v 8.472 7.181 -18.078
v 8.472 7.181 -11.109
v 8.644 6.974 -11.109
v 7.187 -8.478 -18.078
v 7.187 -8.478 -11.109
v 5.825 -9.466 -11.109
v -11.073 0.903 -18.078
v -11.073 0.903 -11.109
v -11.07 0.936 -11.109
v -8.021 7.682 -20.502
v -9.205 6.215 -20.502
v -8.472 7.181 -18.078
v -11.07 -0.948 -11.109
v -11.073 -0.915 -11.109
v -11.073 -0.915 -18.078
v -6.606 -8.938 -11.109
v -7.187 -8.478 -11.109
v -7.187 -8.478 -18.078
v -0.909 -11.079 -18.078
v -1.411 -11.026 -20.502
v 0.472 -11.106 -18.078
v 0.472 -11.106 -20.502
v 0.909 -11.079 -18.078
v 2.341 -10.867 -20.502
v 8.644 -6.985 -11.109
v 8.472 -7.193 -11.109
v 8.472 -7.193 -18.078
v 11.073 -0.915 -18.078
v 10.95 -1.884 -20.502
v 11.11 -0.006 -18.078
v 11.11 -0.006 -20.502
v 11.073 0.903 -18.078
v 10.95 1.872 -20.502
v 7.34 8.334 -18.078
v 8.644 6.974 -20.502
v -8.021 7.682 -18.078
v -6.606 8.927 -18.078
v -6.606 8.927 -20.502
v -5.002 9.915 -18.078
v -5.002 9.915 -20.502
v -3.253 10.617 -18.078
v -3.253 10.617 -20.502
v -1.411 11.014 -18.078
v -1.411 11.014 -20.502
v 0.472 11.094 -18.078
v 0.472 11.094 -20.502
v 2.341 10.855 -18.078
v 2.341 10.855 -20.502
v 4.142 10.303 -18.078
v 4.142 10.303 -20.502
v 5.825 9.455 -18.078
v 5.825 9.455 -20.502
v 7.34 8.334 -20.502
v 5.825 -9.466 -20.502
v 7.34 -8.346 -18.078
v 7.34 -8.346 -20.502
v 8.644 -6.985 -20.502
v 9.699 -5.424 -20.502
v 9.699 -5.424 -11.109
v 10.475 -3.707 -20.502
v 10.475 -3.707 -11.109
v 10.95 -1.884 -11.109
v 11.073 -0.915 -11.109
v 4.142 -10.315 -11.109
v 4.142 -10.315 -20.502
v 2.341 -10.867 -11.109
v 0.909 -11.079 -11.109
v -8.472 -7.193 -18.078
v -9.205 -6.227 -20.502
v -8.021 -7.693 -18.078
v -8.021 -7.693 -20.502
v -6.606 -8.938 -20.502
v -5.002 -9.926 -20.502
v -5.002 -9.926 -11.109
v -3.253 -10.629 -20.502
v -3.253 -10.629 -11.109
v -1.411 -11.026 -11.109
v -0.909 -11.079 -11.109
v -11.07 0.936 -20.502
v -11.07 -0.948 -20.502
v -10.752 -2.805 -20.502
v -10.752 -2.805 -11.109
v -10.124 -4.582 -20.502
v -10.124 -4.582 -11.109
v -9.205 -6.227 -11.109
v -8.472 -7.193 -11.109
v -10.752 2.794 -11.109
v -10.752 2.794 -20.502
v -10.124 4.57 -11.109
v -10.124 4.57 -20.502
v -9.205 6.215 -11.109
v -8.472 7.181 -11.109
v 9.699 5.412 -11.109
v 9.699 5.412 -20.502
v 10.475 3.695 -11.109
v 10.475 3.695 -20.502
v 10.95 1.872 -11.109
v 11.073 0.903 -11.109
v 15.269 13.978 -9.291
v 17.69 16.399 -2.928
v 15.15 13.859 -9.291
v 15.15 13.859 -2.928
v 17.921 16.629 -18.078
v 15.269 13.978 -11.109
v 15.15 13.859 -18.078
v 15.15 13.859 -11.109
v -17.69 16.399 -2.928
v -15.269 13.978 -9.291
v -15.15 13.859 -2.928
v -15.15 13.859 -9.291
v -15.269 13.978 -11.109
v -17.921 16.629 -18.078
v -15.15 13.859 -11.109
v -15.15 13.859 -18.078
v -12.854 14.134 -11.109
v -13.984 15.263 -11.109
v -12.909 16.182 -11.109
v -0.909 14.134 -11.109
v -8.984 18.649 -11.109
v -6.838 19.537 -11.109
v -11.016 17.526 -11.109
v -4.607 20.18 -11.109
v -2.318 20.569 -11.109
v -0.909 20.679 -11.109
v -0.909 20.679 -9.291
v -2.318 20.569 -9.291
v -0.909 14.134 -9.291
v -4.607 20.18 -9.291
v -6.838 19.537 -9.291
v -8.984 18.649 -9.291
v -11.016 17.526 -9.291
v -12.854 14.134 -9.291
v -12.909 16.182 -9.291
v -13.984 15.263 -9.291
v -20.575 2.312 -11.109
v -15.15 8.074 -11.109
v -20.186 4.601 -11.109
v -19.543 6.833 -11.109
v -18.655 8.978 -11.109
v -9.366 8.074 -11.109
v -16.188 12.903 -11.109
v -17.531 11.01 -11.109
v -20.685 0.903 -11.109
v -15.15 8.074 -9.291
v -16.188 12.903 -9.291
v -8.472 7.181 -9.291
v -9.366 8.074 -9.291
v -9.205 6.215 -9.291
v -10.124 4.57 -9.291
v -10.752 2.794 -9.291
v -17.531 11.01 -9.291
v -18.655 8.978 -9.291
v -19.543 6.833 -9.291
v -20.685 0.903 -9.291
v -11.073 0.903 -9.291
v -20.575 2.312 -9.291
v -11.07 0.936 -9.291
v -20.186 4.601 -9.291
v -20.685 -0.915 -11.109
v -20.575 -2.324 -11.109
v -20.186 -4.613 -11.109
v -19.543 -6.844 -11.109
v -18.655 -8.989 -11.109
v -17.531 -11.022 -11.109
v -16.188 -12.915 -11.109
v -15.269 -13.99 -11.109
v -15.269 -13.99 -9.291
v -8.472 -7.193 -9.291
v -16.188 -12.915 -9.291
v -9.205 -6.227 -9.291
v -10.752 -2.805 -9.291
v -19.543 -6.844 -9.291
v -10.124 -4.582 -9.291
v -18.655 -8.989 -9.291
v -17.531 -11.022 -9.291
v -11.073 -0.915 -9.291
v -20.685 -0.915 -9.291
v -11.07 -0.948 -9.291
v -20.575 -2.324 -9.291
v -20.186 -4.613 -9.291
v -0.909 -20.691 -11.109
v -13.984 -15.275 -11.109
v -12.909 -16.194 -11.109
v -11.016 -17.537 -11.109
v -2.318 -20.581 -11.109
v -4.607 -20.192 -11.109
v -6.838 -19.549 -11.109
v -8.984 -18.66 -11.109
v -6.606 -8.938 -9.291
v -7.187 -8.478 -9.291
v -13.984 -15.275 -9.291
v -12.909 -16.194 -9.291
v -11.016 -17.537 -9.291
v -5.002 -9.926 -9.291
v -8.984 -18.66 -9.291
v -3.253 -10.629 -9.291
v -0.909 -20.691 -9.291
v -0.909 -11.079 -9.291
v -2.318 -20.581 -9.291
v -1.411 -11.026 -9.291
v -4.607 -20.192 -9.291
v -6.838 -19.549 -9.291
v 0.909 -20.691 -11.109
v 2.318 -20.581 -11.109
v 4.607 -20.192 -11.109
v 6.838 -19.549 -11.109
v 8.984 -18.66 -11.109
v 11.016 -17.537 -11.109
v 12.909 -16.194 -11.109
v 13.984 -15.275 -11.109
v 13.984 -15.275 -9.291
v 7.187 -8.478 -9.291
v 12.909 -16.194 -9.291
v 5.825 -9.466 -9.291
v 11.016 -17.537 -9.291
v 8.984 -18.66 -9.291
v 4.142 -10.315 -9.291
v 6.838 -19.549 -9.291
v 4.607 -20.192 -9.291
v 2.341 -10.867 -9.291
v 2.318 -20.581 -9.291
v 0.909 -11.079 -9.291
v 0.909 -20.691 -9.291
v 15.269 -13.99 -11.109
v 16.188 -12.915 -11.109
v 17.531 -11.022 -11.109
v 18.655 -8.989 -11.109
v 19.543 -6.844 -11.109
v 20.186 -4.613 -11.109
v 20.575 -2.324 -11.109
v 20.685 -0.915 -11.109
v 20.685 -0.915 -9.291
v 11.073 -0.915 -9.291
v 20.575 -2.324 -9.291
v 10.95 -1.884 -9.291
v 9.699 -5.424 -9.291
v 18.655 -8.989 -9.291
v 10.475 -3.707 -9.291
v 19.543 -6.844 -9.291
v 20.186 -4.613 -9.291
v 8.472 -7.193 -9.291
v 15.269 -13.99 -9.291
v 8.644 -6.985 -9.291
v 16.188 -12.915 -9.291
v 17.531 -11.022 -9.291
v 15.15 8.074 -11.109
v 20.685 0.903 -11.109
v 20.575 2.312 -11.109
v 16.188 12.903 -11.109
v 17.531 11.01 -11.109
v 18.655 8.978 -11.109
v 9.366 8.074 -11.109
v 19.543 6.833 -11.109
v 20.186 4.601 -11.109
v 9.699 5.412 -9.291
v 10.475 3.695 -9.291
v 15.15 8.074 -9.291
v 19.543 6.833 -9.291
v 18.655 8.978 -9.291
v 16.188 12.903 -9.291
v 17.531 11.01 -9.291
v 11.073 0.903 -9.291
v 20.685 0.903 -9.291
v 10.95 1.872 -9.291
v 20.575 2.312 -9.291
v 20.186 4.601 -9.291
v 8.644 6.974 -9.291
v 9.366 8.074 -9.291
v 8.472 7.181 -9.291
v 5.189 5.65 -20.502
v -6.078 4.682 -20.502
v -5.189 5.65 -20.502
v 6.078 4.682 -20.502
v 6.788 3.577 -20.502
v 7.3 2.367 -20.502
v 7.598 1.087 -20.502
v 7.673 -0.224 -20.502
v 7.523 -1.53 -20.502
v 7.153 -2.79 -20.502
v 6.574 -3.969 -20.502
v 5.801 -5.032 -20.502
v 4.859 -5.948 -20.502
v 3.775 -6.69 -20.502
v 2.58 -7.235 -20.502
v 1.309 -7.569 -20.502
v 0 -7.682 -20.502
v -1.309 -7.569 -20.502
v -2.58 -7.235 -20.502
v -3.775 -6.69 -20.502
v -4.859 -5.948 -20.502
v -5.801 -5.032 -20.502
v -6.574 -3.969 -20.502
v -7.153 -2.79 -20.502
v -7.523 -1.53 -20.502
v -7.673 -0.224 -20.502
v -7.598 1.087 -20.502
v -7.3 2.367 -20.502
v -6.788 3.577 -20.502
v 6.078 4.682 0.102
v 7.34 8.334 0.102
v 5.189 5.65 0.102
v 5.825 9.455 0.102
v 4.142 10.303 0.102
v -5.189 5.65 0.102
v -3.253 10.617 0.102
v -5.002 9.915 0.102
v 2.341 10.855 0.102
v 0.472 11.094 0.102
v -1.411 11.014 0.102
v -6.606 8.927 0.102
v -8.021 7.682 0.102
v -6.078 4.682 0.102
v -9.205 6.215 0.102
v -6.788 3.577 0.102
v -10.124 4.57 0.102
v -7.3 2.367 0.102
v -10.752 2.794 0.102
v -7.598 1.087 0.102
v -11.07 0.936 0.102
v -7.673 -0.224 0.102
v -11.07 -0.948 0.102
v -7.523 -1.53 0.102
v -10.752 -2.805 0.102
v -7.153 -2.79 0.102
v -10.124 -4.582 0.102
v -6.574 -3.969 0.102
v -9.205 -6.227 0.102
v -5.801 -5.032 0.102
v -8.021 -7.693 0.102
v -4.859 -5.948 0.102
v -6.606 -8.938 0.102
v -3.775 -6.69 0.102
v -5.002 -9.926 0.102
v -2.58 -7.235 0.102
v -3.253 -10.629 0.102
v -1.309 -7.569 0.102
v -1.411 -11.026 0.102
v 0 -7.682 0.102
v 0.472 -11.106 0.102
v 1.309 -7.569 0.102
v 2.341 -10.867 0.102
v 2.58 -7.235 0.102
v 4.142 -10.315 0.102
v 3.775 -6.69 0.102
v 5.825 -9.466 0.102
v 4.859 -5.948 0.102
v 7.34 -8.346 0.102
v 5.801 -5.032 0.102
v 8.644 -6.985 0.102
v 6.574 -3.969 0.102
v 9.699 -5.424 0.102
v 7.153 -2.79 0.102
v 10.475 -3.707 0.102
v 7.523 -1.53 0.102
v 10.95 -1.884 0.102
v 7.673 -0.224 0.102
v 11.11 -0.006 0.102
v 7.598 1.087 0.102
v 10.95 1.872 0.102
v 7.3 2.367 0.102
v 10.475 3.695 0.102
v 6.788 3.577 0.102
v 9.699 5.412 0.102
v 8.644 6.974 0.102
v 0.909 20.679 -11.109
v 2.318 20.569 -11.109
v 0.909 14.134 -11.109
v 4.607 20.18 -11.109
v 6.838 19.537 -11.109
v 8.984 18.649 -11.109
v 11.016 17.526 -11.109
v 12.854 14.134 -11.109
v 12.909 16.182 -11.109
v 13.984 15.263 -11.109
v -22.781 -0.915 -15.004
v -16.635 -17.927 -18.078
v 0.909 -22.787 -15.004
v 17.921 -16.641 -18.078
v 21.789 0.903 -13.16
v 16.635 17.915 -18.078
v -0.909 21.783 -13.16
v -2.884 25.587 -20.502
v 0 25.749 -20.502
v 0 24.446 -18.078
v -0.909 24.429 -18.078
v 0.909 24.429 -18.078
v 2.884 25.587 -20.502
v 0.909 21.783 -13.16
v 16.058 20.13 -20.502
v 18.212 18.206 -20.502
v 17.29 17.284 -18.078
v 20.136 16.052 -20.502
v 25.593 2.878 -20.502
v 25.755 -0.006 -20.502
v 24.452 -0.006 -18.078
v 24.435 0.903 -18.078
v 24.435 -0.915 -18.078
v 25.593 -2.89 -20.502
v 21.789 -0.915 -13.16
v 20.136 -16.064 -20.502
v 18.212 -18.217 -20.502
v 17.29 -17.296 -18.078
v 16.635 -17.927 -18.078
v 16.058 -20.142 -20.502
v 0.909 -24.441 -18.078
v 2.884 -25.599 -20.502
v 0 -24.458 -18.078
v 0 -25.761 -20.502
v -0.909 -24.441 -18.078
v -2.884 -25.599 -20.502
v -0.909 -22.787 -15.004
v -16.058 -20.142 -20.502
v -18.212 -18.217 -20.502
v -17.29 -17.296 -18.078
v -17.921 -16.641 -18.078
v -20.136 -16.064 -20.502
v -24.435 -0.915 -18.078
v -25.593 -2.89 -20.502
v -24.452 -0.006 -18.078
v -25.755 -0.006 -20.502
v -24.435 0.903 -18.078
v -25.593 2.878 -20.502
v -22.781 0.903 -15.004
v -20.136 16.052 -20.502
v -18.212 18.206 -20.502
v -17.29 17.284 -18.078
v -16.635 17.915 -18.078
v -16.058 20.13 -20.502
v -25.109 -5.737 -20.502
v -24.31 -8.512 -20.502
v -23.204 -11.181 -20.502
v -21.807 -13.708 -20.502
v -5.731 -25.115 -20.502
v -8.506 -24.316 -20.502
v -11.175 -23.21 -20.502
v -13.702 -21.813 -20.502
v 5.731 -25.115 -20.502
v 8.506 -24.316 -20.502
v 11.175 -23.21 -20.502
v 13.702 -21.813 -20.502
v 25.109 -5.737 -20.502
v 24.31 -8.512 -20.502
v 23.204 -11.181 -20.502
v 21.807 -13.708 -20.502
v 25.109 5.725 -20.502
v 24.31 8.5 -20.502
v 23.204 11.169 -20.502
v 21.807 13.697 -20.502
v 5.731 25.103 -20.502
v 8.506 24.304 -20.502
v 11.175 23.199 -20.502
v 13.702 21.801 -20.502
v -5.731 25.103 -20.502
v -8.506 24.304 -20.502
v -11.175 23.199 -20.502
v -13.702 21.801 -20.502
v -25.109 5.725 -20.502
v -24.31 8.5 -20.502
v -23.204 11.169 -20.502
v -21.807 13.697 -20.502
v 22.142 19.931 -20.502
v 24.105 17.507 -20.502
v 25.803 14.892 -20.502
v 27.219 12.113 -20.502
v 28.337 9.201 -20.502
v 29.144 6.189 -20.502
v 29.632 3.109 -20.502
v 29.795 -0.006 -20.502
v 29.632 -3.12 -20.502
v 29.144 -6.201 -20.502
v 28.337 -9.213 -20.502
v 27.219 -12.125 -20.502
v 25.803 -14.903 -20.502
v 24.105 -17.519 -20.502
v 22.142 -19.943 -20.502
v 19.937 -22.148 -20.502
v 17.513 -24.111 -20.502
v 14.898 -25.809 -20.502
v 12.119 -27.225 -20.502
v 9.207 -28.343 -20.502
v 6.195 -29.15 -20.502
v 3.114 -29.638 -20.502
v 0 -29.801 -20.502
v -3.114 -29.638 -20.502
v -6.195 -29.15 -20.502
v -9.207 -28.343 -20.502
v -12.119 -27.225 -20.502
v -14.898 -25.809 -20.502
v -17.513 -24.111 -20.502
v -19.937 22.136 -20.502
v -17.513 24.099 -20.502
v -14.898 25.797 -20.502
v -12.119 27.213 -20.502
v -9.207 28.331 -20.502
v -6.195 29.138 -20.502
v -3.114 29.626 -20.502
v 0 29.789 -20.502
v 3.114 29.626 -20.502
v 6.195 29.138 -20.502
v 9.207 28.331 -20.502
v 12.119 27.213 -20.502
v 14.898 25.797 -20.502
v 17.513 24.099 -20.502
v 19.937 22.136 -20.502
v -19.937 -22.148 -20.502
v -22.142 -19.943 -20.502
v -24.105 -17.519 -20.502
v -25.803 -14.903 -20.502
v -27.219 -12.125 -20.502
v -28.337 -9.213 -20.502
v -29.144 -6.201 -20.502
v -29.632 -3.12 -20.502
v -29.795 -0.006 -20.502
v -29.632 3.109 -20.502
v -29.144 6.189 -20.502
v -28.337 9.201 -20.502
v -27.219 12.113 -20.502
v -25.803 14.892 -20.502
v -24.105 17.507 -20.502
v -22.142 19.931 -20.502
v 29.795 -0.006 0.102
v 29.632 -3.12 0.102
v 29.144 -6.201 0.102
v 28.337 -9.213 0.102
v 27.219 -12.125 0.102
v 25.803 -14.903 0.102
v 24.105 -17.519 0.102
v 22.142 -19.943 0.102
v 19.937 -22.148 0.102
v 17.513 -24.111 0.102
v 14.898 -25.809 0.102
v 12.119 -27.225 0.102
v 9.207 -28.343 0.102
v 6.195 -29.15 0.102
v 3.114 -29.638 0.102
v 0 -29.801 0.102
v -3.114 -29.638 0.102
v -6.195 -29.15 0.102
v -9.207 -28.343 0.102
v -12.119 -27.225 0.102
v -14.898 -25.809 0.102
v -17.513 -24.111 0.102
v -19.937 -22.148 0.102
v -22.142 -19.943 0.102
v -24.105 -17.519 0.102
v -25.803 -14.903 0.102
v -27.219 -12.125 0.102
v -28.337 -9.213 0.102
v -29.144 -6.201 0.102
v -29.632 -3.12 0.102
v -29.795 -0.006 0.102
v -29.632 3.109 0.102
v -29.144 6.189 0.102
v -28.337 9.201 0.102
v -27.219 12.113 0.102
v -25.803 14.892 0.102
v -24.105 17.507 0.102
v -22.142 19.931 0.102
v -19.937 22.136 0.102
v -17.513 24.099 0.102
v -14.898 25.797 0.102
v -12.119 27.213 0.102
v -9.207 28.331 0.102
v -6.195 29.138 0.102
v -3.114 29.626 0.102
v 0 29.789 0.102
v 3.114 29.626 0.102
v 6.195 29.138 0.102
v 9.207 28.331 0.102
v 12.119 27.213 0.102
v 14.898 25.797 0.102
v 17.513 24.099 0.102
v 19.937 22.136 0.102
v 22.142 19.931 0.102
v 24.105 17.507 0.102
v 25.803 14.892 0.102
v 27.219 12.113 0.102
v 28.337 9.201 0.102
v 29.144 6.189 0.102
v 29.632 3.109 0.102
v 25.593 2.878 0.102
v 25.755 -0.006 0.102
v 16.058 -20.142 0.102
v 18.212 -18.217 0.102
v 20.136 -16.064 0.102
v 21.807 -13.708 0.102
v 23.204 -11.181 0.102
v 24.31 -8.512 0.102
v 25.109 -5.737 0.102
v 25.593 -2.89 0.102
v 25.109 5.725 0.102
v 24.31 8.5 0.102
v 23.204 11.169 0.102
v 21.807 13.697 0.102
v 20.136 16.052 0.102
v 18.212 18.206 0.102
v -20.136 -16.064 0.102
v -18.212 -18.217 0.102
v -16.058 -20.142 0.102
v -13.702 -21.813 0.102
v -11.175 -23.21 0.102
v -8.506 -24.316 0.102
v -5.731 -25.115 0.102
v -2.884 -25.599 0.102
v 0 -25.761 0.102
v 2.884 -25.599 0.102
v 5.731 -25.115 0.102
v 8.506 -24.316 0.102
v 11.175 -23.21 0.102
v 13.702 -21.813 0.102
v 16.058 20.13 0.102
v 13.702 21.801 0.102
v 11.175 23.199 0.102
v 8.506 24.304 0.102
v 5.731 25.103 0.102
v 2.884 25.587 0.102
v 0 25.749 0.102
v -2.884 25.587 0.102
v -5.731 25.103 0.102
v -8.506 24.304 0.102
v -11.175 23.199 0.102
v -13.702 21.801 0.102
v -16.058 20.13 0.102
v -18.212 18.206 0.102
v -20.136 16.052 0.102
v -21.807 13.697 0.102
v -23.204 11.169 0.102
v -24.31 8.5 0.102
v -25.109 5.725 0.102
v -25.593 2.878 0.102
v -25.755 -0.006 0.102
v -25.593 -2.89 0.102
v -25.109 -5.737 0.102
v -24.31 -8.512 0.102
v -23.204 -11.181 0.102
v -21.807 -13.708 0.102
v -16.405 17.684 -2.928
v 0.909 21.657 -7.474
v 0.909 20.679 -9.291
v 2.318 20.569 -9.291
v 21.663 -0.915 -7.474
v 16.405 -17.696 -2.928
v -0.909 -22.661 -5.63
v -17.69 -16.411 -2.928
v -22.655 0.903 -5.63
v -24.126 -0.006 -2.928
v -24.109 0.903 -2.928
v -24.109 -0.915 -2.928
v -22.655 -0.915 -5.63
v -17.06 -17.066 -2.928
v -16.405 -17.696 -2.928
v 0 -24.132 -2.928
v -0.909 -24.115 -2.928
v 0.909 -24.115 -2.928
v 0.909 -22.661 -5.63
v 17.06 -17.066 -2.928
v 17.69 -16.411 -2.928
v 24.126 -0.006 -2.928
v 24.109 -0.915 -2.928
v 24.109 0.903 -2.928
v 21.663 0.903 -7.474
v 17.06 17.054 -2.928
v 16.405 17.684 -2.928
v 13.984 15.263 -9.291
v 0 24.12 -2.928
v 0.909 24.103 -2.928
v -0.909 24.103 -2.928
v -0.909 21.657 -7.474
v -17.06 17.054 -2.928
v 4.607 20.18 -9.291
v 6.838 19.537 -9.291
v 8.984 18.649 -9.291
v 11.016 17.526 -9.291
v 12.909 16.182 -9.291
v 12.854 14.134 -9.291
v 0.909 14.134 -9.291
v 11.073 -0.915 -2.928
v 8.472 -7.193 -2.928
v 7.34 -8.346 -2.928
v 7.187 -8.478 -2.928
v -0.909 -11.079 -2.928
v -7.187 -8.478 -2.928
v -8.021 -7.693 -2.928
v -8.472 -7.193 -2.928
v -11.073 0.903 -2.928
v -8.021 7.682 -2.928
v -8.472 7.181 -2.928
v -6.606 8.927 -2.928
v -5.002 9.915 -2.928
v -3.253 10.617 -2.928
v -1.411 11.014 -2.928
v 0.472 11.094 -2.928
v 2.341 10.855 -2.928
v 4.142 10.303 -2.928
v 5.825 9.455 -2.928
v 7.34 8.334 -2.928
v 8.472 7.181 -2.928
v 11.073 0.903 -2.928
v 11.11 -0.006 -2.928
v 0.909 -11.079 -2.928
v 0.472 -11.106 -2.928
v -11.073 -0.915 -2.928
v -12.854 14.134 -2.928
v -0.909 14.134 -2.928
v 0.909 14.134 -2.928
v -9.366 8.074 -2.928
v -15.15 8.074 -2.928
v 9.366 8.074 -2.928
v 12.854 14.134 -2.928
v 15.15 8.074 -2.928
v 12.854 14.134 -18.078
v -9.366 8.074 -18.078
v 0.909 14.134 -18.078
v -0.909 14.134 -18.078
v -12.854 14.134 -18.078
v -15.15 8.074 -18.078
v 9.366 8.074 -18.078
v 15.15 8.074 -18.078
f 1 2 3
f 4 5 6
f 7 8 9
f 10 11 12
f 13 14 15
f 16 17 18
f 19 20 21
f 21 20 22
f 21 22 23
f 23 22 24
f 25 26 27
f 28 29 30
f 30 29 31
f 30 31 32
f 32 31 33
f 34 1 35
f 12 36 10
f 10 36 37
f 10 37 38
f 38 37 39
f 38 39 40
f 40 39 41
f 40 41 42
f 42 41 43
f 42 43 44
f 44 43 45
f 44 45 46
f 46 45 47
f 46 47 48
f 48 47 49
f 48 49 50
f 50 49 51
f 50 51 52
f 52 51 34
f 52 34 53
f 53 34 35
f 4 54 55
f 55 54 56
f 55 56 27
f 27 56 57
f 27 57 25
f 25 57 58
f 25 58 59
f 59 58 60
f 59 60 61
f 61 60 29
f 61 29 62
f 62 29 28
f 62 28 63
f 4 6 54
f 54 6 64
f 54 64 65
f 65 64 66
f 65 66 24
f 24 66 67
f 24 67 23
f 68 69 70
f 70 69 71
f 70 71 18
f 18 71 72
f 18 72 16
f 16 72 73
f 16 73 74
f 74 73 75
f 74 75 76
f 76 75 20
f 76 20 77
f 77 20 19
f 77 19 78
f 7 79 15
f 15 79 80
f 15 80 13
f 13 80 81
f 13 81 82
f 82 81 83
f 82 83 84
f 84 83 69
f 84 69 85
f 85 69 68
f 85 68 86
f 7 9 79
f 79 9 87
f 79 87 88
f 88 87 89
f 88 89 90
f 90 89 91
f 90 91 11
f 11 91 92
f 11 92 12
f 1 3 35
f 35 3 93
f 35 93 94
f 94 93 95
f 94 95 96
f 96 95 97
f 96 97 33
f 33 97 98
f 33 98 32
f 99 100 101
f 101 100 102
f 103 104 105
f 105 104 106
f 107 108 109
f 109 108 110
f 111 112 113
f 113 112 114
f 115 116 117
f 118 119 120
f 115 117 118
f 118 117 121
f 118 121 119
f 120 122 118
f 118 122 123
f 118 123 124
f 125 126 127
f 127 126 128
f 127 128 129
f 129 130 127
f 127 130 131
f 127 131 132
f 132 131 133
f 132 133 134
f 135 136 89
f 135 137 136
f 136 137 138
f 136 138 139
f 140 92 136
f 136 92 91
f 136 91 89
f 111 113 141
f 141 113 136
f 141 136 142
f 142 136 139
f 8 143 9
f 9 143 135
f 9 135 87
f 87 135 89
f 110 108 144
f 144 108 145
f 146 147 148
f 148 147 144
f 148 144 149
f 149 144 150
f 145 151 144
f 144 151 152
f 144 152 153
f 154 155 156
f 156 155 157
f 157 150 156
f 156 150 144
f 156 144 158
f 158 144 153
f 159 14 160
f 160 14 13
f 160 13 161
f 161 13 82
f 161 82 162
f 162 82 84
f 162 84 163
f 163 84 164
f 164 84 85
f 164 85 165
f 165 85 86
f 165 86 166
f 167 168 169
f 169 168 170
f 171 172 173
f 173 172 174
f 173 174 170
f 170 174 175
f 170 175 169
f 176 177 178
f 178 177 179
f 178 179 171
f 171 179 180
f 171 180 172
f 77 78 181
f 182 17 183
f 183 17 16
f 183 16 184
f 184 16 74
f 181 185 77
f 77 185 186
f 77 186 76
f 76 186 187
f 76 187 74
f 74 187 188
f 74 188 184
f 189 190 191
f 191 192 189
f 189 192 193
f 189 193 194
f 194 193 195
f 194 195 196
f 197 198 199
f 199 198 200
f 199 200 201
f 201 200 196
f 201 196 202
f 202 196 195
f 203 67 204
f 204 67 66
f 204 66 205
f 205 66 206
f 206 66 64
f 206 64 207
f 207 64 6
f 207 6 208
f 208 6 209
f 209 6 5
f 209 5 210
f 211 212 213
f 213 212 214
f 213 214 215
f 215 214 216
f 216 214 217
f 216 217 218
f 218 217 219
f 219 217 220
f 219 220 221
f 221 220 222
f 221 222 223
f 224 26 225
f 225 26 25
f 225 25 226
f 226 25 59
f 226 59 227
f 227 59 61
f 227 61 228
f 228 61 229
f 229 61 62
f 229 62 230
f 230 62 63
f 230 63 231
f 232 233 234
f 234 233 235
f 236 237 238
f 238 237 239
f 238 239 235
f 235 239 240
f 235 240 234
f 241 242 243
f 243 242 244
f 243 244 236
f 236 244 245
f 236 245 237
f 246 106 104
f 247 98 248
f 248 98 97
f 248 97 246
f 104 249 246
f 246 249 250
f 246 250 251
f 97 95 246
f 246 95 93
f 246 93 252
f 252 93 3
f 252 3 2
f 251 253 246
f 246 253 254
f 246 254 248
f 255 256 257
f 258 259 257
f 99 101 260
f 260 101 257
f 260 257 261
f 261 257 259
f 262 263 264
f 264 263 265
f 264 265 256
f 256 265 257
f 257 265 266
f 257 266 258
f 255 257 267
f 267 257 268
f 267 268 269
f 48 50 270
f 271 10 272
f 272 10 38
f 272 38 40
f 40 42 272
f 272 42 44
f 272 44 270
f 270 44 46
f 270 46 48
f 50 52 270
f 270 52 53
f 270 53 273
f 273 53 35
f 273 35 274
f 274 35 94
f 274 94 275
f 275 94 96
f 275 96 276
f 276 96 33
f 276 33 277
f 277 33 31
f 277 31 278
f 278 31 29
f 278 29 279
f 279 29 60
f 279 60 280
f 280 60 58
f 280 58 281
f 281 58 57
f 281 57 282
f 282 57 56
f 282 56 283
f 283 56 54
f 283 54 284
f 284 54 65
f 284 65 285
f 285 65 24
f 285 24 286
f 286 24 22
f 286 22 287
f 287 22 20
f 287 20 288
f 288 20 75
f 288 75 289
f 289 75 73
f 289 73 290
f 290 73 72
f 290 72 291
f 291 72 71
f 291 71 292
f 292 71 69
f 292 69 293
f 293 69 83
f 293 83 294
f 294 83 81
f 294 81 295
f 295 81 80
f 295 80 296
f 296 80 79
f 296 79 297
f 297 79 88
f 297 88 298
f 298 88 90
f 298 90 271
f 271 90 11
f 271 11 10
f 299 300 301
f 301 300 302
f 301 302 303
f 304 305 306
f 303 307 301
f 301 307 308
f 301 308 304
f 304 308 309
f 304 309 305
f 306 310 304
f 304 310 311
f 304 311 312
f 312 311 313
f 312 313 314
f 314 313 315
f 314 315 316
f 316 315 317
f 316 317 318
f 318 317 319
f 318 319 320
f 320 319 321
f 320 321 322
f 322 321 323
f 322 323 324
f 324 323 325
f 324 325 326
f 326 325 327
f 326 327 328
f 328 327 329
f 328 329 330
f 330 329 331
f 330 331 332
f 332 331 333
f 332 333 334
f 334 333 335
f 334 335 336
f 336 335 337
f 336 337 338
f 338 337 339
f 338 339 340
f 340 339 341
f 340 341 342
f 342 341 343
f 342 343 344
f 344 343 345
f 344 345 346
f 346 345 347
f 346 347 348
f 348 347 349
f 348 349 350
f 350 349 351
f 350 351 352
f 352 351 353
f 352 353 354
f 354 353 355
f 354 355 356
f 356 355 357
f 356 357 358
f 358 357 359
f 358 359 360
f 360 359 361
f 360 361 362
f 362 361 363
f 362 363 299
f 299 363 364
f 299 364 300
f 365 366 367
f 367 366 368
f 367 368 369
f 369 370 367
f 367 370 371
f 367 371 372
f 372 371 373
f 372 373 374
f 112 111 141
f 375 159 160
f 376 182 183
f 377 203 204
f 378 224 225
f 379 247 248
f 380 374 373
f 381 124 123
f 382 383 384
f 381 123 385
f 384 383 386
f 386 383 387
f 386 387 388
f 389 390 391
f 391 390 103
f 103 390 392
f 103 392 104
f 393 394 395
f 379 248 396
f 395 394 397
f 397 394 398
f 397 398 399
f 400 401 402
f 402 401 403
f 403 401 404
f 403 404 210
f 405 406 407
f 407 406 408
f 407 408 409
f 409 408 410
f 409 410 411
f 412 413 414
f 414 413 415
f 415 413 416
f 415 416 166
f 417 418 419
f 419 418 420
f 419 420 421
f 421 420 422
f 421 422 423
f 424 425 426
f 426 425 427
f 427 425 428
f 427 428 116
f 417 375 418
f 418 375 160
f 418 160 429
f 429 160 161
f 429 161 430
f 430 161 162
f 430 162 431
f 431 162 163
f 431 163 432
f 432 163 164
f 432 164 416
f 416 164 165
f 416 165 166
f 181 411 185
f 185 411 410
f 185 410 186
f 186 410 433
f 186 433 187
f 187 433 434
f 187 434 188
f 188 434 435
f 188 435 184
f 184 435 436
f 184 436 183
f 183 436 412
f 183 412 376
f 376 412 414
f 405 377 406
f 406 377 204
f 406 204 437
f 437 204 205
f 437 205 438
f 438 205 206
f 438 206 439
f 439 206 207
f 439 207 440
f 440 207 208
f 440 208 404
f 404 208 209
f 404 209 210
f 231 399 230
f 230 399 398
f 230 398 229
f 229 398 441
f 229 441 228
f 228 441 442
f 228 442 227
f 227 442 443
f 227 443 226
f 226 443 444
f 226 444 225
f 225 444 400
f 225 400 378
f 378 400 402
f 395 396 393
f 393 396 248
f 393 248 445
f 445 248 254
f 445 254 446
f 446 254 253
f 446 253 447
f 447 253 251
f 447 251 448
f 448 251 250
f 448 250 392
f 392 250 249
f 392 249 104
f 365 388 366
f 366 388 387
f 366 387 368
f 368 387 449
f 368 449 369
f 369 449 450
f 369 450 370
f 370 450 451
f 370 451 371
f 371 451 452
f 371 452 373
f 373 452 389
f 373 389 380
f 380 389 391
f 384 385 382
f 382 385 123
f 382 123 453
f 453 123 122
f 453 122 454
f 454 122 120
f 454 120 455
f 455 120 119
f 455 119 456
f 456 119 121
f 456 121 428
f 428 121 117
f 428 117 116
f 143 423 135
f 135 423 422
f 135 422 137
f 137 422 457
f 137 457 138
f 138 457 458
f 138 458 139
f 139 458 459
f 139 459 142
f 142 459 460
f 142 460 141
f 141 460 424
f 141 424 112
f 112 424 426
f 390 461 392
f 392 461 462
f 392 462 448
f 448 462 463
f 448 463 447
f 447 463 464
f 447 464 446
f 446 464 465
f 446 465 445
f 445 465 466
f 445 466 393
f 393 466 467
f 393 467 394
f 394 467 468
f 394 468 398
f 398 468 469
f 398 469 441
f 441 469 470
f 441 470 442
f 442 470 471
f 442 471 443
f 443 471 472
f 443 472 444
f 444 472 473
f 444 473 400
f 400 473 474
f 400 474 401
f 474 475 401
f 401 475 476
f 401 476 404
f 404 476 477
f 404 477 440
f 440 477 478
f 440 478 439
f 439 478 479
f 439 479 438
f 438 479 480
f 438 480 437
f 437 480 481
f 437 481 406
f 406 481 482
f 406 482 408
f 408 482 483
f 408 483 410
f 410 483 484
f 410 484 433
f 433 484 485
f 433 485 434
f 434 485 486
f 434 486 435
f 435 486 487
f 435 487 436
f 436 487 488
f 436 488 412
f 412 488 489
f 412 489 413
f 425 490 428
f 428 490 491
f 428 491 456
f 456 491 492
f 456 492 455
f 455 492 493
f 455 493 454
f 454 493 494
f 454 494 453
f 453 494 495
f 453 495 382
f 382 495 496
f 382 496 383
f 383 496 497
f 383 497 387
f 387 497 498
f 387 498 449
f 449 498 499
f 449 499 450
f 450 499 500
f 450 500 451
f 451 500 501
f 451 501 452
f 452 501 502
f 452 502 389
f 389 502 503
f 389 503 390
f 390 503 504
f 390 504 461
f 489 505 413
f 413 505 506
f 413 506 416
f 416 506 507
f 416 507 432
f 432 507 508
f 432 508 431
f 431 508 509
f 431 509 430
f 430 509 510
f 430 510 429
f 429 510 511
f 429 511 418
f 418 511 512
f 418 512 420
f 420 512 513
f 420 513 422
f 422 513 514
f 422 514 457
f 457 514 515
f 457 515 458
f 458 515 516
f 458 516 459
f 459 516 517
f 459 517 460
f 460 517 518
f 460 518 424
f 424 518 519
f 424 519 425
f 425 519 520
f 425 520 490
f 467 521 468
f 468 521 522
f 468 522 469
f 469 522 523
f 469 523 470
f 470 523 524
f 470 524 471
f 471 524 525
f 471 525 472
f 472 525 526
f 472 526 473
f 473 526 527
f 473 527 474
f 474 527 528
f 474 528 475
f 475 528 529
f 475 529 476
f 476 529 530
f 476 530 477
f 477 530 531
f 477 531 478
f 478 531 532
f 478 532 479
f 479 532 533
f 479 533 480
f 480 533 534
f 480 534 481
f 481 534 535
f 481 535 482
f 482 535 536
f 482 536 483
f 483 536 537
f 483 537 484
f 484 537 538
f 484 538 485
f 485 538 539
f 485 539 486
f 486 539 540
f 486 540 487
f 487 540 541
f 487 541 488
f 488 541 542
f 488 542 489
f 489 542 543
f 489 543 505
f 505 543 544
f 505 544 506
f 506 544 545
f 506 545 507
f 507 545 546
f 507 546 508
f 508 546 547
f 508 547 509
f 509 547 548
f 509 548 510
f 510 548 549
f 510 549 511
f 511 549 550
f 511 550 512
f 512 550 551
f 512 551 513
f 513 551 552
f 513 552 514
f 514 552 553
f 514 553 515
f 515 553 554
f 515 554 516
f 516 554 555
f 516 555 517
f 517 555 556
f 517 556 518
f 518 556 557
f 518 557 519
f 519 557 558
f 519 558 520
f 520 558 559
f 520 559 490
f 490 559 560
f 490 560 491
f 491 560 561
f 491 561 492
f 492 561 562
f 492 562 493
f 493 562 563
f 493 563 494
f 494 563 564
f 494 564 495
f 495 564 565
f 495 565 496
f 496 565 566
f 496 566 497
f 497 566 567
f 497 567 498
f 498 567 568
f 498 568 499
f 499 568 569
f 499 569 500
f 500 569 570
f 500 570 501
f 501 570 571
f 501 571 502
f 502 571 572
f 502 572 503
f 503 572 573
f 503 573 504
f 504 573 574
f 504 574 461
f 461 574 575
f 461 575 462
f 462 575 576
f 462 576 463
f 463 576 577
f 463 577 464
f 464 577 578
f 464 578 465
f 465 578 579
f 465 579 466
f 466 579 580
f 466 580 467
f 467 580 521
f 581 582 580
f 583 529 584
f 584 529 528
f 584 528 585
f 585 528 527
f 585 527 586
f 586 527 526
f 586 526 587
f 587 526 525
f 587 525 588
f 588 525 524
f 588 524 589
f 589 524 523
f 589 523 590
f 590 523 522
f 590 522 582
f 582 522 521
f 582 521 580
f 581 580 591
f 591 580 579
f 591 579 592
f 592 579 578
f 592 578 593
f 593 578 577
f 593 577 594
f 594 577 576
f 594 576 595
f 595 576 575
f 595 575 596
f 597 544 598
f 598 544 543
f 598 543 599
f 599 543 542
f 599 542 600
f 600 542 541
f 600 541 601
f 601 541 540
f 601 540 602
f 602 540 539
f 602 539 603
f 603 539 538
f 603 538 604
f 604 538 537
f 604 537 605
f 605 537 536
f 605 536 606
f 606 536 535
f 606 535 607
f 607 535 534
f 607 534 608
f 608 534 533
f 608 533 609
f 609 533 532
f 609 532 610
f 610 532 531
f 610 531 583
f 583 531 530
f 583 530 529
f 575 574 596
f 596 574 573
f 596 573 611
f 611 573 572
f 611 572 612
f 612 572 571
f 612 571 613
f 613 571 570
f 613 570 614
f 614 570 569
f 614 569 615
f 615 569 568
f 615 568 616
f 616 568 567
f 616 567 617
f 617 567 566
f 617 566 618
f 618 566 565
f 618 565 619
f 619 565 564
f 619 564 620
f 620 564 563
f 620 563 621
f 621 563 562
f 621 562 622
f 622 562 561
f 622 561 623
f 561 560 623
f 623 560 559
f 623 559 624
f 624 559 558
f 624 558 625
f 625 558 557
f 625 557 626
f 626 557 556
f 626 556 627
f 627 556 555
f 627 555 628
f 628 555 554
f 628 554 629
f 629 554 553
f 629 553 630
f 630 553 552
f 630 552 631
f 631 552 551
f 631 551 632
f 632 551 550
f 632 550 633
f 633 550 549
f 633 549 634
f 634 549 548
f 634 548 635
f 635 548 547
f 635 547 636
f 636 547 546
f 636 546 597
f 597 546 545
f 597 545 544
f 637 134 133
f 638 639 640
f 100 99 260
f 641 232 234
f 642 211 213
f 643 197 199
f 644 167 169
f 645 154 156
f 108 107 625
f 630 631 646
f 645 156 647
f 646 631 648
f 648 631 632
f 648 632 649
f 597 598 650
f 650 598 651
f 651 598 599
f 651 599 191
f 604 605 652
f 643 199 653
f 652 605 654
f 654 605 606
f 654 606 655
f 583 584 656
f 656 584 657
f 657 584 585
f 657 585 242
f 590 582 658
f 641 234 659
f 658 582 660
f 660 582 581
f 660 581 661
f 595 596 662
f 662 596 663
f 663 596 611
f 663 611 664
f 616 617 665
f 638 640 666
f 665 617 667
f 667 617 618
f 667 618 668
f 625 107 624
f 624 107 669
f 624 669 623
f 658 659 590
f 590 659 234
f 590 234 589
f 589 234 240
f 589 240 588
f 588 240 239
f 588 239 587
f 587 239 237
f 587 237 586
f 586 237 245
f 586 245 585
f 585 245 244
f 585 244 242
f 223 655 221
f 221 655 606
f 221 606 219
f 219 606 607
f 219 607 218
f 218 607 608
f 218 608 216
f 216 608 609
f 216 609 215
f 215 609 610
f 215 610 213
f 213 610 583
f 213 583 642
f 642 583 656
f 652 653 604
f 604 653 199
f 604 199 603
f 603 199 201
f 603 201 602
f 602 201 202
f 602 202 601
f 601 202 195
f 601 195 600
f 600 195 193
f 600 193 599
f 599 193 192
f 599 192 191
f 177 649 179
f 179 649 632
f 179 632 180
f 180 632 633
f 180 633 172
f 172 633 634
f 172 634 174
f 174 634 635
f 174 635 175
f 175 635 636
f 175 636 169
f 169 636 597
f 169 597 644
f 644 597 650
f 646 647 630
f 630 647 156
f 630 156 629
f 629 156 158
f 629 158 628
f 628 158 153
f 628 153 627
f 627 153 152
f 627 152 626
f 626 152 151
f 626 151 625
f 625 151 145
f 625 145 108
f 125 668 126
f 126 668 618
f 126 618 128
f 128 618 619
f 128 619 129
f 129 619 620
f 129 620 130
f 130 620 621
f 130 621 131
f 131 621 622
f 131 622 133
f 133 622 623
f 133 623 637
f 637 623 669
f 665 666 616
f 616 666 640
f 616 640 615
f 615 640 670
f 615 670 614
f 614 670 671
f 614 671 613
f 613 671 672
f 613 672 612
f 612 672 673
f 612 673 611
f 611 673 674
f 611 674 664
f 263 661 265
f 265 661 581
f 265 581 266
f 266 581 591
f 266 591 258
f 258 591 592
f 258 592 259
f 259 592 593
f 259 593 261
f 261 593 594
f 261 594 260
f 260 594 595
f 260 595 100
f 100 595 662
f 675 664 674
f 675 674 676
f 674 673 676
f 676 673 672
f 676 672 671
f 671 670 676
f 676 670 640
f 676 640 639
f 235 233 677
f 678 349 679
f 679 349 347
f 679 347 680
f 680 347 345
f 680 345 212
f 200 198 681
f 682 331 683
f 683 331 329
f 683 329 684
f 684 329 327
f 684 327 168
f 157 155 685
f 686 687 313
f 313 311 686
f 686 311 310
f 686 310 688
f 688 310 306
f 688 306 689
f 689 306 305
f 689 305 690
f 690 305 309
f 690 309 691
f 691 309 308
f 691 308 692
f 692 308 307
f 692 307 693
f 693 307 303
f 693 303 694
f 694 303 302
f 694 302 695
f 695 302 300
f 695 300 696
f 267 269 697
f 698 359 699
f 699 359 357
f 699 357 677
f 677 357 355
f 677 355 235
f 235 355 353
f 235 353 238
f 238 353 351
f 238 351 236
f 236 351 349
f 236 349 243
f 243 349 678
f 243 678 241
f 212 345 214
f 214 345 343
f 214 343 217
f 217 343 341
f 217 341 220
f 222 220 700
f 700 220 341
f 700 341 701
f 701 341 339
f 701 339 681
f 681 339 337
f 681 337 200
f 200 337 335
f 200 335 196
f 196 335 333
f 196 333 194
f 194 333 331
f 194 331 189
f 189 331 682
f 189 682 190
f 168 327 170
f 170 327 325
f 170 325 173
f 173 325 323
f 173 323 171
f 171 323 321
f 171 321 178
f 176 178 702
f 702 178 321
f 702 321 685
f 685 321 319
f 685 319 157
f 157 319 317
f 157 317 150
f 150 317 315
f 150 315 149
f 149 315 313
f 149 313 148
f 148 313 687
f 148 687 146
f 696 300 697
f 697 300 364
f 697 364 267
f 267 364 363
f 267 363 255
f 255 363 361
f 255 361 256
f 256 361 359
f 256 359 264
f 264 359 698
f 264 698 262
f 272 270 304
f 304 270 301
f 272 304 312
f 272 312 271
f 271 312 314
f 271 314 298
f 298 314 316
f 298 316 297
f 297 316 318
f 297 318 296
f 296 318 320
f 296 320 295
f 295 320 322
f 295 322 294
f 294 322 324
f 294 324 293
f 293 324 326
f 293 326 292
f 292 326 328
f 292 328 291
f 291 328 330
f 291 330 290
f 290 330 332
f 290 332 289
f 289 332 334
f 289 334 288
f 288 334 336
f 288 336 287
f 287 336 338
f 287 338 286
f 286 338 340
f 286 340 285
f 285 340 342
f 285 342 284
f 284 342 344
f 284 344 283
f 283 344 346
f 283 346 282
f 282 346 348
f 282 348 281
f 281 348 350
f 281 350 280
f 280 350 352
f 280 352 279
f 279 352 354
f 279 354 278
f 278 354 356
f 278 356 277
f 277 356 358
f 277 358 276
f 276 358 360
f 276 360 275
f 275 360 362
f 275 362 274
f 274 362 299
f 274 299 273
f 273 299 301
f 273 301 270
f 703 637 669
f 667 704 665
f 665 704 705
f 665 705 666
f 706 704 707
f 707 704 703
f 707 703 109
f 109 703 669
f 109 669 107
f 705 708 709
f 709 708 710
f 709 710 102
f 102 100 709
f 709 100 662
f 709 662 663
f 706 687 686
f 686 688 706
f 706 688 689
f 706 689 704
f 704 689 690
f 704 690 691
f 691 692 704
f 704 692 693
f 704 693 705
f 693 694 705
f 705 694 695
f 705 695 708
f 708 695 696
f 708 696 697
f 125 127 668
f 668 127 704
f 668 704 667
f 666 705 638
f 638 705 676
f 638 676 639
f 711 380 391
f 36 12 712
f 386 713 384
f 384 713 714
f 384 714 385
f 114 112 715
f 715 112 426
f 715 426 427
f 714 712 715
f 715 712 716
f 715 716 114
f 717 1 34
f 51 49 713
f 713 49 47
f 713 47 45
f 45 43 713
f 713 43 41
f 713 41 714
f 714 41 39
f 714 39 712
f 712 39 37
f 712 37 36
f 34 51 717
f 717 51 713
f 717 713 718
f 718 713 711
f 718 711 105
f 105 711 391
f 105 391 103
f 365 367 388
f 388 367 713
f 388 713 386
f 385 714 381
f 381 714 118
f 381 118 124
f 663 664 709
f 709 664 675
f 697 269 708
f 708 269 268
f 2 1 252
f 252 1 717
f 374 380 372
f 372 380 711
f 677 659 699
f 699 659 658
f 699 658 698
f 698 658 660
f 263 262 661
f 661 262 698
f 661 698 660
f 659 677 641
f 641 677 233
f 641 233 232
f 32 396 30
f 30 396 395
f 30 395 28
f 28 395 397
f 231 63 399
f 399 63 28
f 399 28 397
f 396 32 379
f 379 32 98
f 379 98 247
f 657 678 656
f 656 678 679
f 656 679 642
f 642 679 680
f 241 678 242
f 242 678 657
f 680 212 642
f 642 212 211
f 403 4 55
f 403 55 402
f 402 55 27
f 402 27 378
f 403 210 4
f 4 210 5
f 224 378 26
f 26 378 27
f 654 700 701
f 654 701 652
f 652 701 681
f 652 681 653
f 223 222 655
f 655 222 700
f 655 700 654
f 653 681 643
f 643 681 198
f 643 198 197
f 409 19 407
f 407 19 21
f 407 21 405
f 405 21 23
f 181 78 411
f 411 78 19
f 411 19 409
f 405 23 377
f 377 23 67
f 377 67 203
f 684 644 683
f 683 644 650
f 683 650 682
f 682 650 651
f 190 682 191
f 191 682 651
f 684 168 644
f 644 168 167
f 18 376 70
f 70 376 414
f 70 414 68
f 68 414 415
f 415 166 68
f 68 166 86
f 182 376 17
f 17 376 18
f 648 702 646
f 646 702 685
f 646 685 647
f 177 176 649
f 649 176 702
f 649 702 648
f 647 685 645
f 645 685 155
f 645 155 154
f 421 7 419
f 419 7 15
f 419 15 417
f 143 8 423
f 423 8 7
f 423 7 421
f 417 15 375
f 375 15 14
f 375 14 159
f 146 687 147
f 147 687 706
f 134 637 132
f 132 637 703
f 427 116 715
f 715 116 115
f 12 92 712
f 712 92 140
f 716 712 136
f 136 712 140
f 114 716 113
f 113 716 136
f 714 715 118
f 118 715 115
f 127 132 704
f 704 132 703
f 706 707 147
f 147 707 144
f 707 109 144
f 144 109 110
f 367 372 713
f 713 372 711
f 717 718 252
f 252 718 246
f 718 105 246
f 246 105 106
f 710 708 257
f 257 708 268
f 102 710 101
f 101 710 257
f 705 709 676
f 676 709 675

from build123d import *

# Parameters (mm, degrees)
SKETCH_2_R          = 5
CUT_EXTRUDE_1_DEPTH = 47.439853574
SKETCH_3_W          = 1.8
SKETCH_3_H          = 18
SKETCH_3_W_2        = 18
SKETCH_3_H_2        = 1.8
EXTRUDE_1_DEPTH     = 15
SKETCH_4_W          = 30
SKETCH_4_H          = 6
EXTRUDE_2_DEPTH     = 15
SCALE_1_SCALE       = 1.01


with BuildPart() as part:
    # Эскиз1 → Повернуть1 (revolve)
    with BuildSketch(Plane(origin=(0, 0, 0), x_dir=(1, 0, 0), z_dir=(0, 1, 0)), mode=Mode.PRIVATE) as revolve_1_sk:
        Polygon((-5, 0), (-11, 0), (-11, 9.3), (-20.5, 9.3), (-25.5, 0), (-29.5, 0), (-29.5, 20.4), (-25.5, 20.4), (-20.5, 11.1), (-11, 11.1), (-11, 20.4), (-5, 20.4), align=None)
    revolve(revolve_1_sk.sketch.rotate(Axis((0, 0, 0), (0, 0, -1)), 180), axis=Axis((0, 0, 0), (0, 0, -1)))

    # Эскиз2 → Вырез-Вытянуть1 (cut, through all)
    with BuildSketch(Plane.XY):
        with BuildLine():
            Line((5.138093031, 5.6), (-5.138093031, 5.6))
            ThreePointArc((-5.138093031, 5.6), (-3.058634741, -6.957352479), (7.6, 0))
            ThreePointArc((7.6, 0), (6.957352479, 3.058634741), (5.138093031, 5.6))
        make_face()
        Circle(SKETCH_2_R, mode=Mode.SUBTRACT)
    extrude(amount=-CUT_EXTRUDE_1_DEPTH, mode=Mode.SUBTRACT)

    # Эскиз3 → Бобышка-Вытянуть1 (add)
    with BuildSketch(Plane.XY.offset(-3)):
        Polygon((5.020458146, 6.293250353), (6.293250353, 5.020458146), (19.021172414, 17.748380208), (17.748380208, 19.021172414), align=None)
        with Locations((0, 17)):
            Rectangle(SKETCH_3_W, SKETCH_3_H)
        with Locations((17, 0)):
            Rectangle(SKETCH_3_W_2, SKETCH_3_H_2)
        Polygon((6.293250353, -5.020458146), (5.020458146, -6.293250353), (17.748380208, -19.021172414), (19.021172414, -17.748380208), align=None)
        with Locations((0, -17)):
            Rectangle(SKETCH_3_W, SKETCH_3_H)
        Polygon((-5.020458146, -6.293250353), (-6.293250353, -5.020458146), (-19.021172414, -17.748380208), (-17.748380208, -19.021172414), align=None)
        with Locations((-17, 0)):
            Rectangle(SKETCH_3_W_2, SKETCH_3_H_2)
        Polygon((-6.293250353, 5.020458146), (-5.020458146, 6.293250353), (-17.748380208, 19.021172414), (-19.021172414, 17.748380208), align=None)
    extrude(amount=-EXTRUDE_1_DEPTH)

    # Эскиз4 → Бобышка-Вытянуть2 (add)
    with BuildSketch(Plane.XY.offset(-3)):
        with Locations((0, 11)):
            Rectangle(SKETCH_4_W, SKETCH_4_H)
    extrude(amount=-EXTRUDE_2_DEPTH)


with BuildPart() as part_1:
    # Масштаб1: scaled about (0, 0.590334884, -10.24232435)
    add(part.part.scale(SCALE_1_SCALE).moved(Location((0, -0.005903349, 0.102423244))))


solid = part_1.part
